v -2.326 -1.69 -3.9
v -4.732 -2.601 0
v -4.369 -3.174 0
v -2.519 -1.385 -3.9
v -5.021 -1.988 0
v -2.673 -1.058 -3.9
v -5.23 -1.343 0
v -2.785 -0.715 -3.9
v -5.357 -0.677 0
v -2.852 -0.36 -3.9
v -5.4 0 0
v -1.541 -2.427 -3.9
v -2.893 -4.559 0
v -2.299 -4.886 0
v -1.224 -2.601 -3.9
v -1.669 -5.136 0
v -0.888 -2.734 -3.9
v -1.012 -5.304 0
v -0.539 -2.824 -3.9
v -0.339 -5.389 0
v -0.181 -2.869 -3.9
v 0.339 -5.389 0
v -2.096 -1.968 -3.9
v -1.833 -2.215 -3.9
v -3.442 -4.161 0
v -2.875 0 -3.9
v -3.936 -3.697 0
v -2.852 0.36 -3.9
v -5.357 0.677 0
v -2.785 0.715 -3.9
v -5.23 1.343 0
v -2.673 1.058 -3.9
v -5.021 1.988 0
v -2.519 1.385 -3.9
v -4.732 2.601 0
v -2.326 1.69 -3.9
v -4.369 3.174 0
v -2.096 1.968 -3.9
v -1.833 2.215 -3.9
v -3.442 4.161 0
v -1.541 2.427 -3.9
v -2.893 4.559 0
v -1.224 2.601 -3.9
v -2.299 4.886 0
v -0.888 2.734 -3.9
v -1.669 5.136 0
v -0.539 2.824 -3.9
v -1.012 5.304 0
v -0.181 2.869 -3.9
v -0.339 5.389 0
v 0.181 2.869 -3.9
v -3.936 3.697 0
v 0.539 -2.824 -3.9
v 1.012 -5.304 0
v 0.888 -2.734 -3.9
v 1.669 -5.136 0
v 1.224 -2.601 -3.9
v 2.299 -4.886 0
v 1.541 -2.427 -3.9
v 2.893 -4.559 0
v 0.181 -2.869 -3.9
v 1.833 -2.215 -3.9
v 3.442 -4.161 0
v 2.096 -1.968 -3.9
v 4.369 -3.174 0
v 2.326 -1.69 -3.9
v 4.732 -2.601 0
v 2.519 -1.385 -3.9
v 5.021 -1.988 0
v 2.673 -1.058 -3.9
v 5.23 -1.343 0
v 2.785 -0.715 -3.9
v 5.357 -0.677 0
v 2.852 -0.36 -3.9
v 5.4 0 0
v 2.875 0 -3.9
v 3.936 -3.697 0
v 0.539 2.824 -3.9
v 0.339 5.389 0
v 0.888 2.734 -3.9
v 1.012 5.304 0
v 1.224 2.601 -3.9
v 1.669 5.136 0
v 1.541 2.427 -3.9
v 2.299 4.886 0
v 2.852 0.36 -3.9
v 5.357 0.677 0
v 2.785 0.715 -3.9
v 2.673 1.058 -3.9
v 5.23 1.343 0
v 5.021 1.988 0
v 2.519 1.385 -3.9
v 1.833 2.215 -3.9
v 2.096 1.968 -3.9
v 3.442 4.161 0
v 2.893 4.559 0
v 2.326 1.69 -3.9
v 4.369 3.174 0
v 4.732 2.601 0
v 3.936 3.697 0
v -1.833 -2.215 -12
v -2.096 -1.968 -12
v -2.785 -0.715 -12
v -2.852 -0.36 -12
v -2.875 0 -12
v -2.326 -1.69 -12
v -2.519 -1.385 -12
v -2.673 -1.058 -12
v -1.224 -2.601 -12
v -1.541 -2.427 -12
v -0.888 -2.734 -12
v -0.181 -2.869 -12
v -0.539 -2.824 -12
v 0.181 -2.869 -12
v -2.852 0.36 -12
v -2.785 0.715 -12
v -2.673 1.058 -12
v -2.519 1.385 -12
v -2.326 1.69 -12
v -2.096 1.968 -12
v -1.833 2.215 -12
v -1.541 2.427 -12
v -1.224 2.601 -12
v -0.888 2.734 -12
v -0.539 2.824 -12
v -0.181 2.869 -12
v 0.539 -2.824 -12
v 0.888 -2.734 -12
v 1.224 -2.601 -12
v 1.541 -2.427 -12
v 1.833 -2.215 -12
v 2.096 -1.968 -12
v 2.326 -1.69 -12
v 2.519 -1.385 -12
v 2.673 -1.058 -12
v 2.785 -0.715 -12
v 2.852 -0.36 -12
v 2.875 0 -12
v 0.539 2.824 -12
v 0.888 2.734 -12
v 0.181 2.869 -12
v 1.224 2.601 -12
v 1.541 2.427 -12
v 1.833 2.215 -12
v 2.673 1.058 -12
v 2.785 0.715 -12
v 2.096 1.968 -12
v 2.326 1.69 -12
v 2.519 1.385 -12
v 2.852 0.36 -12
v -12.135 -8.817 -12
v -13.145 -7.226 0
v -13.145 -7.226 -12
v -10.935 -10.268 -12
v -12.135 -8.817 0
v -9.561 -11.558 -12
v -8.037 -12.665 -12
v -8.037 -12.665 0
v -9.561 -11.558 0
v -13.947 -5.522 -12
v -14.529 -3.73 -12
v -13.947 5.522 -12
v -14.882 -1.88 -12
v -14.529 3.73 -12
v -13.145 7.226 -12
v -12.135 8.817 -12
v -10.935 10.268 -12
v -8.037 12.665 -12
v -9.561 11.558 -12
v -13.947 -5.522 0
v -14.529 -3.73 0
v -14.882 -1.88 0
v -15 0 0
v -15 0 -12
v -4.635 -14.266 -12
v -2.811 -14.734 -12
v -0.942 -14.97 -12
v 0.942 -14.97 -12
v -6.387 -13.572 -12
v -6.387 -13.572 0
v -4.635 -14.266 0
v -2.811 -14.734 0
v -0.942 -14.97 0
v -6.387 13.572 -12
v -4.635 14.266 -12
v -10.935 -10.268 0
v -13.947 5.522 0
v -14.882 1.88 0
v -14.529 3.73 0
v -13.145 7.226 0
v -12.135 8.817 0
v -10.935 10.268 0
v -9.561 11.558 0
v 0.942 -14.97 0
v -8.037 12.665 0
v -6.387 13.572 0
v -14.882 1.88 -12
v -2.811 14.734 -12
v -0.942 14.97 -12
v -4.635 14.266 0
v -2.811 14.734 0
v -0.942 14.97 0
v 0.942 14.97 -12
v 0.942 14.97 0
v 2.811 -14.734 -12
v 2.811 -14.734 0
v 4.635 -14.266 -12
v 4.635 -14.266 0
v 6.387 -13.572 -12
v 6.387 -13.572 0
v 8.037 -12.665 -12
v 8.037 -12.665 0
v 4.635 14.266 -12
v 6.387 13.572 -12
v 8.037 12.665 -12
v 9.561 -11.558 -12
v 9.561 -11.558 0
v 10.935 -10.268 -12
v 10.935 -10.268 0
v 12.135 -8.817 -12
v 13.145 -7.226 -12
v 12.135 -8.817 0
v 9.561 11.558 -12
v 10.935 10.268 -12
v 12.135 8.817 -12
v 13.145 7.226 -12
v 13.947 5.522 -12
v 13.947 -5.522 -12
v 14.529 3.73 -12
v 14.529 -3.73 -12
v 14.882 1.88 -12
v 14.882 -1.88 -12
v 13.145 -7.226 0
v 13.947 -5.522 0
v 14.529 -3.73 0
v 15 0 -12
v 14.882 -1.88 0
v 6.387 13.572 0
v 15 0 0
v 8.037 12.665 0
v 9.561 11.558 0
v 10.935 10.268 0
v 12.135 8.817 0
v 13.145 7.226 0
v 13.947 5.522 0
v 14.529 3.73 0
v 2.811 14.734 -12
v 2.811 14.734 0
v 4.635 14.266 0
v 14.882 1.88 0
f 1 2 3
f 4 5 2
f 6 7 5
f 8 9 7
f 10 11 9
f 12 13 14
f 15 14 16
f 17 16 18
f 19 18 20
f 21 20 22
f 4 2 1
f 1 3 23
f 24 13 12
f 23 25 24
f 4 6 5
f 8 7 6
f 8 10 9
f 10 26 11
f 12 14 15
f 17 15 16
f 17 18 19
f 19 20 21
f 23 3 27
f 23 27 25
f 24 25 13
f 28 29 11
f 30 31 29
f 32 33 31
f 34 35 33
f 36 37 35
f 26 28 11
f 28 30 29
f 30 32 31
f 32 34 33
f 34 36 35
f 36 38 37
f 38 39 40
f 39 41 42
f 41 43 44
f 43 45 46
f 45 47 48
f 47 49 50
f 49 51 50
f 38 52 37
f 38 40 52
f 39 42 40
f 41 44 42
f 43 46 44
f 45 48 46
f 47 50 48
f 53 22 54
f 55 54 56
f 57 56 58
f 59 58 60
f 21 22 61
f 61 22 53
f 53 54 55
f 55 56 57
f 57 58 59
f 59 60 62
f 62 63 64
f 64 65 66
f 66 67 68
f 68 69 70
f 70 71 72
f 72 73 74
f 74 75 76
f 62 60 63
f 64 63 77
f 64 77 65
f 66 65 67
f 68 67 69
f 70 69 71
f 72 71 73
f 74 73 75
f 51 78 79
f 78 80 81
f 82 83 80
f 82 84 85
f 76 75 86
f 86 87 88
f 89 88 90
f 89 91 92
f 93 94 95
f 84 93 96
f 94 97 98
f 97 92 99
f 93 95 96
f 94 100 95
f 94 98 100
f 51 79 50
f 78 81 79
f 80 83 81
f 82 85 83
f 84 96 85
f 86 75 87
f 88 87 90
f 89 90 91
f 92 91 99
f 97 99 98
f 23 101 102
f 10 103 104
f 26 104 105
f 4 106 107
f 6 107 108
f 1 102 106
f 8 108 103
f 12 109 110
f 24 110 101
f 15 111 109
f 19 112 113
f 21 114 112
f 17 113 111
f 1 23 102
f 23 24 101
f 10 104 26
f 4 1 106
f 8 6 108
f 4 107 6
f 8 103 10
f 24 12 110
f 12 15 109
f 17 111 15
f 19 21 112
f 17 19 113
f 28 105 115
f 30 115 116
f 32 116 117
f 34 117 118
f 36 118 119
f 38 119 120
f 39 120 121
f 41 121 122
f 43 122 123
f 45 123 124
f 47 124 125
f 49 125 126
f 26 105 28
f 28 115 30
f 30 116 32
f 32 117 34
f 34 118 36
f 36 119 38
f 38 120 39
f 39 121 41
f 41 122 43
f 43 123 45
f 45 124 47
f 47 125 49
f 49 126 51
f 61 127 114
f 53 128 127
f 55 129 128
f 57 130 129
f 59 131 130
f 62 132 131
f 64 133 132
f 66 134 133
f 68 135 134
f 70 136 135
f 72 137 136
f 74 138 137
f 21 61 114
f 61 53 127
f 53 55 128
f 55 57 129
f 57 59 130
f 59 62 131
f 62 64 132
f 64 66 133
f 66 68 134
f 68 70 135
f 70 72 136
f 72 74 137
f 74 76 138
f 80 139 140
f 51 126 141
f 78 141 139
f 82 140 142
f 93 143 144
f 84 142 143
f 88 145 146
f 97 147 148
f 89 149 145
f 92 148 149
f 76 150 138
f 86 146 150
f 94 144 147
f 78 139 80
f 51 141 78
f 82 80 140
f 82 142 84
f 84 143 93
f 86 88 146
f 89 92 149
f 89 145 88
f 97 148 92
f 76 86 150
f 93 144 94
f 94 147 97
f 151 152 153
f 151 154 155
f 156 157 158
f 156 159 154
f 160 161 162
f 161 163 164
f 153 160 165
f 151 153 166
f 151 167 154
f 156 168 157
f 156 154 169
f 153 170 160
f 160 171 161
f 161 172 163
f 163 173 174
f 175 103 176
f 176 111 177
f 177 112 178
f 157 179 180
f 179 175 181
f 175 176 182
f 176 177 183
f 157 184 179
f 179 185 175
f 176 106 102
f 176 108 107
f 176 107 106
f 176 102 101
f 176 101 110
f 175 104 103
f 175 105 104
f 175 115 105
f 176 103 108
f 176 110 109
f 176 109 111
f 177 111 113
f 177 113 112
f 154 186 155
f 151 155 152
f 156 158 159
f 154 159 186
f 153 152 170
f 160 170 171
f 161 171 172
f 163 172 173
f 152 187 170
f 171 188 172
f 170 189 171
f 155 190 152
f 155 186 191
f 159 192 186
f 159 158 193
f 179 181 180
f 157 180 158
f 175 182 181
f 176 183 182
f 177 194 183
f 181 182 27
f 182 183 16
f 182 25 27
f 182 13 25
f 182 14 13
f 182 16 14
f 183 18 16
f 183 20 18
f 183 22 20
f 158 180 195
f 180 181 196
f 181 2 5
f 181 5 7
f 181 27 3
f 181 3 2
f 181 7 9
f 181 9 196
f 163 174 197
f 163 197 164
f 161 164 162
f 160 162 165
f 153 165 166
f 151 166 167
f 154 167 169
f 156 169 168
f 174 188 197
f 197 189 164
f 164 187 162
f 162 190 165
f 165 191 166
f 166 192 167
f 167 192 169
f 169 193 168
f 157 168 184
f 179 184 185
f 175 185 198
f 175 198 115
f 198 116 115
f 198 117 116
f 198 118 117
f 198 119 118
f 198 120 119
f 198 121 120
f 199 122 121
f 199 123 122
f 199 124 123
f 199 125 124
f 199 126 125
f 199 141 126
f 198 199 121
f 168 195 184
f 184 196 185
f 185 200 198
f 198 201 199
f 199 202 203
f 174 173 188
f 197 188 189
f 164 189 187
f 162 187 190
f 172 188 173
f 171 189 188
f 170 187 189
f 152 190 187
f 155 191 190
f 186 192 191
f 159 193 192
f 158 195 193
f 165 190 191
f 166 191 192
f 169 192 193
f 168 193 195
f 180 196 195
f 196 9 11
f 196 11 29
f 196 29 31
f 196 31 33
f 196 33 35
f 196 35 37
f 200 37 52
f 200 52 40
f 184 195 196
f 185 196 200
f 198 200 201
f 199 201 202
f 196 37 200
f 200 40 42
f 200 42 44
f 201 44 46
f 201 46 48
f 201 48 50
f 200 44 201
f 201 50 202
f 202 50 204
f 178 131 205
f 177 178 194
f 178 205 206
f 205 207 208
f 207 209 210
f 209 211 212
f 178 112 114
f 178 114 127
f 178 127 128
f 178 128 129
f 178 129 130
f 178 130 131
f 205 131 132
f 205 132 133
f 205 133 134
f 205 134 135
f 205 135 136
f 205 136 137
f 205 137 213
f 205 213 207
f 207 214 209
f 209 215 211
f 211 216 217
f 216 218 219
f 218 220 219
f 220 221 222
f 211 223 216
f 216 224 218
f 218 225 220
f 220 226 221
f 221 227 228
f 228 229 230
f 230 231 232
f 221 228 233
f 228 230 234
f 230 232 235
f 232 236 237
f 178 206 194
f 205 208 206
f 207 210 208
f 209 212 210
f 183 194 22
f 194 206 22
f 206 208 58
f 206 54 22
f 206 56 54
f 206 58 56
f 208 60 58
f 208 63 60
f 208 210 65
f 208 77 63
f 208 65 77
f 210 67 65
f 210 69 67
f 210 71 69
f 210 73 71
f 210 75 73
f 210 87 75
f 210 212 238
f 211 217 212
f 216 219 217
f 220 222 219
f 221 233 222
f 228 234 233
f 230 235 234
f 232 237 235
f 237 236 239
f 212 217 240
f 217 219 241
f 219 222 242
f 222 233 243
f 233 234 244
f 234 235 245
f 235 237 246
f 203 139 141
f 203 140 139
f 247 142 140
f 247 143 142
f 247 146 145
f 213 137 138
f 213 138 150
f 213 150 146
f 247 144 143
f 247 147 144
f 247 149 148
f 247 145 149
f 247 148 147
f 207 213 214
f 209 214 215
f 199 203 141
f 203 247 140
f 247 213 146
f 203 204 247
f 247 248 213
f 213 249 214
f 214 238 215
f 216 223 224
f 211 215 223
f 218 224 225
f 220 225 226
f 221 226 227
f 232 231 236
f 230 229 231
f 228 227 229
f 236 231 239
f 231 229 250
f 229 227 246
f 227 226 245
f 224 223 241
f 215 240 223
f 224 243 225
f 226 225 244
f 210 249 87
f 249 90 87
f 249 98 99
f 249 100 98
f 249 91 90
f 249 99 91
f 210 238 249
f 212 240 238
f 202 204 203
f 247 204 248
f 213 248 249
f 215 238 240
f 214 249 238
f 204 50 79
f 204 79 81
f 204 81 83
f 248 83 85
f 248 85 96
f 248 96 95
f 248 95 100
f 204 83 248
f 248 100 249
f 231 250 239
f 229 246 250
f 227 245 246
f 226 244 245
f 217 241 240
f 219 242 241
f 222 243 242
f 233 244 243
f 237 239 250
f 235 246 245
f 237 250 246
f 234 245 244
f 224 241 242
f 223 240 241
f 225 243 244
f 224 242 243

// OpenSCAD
$fn = 50;

difference() {
	union() {
		translate(v = [0, 0, -12.0]) {
			cylinder(h = 12, r = 15.0);
		}
	}
	union() {
		translate(v = [0, 0, 0]) {
			rotate(a = [0, 0, 0]) {
				difference() {
					union() {
						translate(v = [0, 0, -15.0]) {
							cylinder(h = 15, r = 2.6);
						}
						translate(v = [0, 0, -3.9]) {
							cylinder(h = 3.9, r1 = 2.875, r2 = 5.4);
						}
						translate(v = [0, 0, -15.0]) {
							cylinder(h = 15, r = 2.875);
						}
						translate(v = [0, 0, -15.0]) {
							cylinder(h = 15, r = 2.6);
						}
					}
					union();
				}
			}
		}
	}
}
